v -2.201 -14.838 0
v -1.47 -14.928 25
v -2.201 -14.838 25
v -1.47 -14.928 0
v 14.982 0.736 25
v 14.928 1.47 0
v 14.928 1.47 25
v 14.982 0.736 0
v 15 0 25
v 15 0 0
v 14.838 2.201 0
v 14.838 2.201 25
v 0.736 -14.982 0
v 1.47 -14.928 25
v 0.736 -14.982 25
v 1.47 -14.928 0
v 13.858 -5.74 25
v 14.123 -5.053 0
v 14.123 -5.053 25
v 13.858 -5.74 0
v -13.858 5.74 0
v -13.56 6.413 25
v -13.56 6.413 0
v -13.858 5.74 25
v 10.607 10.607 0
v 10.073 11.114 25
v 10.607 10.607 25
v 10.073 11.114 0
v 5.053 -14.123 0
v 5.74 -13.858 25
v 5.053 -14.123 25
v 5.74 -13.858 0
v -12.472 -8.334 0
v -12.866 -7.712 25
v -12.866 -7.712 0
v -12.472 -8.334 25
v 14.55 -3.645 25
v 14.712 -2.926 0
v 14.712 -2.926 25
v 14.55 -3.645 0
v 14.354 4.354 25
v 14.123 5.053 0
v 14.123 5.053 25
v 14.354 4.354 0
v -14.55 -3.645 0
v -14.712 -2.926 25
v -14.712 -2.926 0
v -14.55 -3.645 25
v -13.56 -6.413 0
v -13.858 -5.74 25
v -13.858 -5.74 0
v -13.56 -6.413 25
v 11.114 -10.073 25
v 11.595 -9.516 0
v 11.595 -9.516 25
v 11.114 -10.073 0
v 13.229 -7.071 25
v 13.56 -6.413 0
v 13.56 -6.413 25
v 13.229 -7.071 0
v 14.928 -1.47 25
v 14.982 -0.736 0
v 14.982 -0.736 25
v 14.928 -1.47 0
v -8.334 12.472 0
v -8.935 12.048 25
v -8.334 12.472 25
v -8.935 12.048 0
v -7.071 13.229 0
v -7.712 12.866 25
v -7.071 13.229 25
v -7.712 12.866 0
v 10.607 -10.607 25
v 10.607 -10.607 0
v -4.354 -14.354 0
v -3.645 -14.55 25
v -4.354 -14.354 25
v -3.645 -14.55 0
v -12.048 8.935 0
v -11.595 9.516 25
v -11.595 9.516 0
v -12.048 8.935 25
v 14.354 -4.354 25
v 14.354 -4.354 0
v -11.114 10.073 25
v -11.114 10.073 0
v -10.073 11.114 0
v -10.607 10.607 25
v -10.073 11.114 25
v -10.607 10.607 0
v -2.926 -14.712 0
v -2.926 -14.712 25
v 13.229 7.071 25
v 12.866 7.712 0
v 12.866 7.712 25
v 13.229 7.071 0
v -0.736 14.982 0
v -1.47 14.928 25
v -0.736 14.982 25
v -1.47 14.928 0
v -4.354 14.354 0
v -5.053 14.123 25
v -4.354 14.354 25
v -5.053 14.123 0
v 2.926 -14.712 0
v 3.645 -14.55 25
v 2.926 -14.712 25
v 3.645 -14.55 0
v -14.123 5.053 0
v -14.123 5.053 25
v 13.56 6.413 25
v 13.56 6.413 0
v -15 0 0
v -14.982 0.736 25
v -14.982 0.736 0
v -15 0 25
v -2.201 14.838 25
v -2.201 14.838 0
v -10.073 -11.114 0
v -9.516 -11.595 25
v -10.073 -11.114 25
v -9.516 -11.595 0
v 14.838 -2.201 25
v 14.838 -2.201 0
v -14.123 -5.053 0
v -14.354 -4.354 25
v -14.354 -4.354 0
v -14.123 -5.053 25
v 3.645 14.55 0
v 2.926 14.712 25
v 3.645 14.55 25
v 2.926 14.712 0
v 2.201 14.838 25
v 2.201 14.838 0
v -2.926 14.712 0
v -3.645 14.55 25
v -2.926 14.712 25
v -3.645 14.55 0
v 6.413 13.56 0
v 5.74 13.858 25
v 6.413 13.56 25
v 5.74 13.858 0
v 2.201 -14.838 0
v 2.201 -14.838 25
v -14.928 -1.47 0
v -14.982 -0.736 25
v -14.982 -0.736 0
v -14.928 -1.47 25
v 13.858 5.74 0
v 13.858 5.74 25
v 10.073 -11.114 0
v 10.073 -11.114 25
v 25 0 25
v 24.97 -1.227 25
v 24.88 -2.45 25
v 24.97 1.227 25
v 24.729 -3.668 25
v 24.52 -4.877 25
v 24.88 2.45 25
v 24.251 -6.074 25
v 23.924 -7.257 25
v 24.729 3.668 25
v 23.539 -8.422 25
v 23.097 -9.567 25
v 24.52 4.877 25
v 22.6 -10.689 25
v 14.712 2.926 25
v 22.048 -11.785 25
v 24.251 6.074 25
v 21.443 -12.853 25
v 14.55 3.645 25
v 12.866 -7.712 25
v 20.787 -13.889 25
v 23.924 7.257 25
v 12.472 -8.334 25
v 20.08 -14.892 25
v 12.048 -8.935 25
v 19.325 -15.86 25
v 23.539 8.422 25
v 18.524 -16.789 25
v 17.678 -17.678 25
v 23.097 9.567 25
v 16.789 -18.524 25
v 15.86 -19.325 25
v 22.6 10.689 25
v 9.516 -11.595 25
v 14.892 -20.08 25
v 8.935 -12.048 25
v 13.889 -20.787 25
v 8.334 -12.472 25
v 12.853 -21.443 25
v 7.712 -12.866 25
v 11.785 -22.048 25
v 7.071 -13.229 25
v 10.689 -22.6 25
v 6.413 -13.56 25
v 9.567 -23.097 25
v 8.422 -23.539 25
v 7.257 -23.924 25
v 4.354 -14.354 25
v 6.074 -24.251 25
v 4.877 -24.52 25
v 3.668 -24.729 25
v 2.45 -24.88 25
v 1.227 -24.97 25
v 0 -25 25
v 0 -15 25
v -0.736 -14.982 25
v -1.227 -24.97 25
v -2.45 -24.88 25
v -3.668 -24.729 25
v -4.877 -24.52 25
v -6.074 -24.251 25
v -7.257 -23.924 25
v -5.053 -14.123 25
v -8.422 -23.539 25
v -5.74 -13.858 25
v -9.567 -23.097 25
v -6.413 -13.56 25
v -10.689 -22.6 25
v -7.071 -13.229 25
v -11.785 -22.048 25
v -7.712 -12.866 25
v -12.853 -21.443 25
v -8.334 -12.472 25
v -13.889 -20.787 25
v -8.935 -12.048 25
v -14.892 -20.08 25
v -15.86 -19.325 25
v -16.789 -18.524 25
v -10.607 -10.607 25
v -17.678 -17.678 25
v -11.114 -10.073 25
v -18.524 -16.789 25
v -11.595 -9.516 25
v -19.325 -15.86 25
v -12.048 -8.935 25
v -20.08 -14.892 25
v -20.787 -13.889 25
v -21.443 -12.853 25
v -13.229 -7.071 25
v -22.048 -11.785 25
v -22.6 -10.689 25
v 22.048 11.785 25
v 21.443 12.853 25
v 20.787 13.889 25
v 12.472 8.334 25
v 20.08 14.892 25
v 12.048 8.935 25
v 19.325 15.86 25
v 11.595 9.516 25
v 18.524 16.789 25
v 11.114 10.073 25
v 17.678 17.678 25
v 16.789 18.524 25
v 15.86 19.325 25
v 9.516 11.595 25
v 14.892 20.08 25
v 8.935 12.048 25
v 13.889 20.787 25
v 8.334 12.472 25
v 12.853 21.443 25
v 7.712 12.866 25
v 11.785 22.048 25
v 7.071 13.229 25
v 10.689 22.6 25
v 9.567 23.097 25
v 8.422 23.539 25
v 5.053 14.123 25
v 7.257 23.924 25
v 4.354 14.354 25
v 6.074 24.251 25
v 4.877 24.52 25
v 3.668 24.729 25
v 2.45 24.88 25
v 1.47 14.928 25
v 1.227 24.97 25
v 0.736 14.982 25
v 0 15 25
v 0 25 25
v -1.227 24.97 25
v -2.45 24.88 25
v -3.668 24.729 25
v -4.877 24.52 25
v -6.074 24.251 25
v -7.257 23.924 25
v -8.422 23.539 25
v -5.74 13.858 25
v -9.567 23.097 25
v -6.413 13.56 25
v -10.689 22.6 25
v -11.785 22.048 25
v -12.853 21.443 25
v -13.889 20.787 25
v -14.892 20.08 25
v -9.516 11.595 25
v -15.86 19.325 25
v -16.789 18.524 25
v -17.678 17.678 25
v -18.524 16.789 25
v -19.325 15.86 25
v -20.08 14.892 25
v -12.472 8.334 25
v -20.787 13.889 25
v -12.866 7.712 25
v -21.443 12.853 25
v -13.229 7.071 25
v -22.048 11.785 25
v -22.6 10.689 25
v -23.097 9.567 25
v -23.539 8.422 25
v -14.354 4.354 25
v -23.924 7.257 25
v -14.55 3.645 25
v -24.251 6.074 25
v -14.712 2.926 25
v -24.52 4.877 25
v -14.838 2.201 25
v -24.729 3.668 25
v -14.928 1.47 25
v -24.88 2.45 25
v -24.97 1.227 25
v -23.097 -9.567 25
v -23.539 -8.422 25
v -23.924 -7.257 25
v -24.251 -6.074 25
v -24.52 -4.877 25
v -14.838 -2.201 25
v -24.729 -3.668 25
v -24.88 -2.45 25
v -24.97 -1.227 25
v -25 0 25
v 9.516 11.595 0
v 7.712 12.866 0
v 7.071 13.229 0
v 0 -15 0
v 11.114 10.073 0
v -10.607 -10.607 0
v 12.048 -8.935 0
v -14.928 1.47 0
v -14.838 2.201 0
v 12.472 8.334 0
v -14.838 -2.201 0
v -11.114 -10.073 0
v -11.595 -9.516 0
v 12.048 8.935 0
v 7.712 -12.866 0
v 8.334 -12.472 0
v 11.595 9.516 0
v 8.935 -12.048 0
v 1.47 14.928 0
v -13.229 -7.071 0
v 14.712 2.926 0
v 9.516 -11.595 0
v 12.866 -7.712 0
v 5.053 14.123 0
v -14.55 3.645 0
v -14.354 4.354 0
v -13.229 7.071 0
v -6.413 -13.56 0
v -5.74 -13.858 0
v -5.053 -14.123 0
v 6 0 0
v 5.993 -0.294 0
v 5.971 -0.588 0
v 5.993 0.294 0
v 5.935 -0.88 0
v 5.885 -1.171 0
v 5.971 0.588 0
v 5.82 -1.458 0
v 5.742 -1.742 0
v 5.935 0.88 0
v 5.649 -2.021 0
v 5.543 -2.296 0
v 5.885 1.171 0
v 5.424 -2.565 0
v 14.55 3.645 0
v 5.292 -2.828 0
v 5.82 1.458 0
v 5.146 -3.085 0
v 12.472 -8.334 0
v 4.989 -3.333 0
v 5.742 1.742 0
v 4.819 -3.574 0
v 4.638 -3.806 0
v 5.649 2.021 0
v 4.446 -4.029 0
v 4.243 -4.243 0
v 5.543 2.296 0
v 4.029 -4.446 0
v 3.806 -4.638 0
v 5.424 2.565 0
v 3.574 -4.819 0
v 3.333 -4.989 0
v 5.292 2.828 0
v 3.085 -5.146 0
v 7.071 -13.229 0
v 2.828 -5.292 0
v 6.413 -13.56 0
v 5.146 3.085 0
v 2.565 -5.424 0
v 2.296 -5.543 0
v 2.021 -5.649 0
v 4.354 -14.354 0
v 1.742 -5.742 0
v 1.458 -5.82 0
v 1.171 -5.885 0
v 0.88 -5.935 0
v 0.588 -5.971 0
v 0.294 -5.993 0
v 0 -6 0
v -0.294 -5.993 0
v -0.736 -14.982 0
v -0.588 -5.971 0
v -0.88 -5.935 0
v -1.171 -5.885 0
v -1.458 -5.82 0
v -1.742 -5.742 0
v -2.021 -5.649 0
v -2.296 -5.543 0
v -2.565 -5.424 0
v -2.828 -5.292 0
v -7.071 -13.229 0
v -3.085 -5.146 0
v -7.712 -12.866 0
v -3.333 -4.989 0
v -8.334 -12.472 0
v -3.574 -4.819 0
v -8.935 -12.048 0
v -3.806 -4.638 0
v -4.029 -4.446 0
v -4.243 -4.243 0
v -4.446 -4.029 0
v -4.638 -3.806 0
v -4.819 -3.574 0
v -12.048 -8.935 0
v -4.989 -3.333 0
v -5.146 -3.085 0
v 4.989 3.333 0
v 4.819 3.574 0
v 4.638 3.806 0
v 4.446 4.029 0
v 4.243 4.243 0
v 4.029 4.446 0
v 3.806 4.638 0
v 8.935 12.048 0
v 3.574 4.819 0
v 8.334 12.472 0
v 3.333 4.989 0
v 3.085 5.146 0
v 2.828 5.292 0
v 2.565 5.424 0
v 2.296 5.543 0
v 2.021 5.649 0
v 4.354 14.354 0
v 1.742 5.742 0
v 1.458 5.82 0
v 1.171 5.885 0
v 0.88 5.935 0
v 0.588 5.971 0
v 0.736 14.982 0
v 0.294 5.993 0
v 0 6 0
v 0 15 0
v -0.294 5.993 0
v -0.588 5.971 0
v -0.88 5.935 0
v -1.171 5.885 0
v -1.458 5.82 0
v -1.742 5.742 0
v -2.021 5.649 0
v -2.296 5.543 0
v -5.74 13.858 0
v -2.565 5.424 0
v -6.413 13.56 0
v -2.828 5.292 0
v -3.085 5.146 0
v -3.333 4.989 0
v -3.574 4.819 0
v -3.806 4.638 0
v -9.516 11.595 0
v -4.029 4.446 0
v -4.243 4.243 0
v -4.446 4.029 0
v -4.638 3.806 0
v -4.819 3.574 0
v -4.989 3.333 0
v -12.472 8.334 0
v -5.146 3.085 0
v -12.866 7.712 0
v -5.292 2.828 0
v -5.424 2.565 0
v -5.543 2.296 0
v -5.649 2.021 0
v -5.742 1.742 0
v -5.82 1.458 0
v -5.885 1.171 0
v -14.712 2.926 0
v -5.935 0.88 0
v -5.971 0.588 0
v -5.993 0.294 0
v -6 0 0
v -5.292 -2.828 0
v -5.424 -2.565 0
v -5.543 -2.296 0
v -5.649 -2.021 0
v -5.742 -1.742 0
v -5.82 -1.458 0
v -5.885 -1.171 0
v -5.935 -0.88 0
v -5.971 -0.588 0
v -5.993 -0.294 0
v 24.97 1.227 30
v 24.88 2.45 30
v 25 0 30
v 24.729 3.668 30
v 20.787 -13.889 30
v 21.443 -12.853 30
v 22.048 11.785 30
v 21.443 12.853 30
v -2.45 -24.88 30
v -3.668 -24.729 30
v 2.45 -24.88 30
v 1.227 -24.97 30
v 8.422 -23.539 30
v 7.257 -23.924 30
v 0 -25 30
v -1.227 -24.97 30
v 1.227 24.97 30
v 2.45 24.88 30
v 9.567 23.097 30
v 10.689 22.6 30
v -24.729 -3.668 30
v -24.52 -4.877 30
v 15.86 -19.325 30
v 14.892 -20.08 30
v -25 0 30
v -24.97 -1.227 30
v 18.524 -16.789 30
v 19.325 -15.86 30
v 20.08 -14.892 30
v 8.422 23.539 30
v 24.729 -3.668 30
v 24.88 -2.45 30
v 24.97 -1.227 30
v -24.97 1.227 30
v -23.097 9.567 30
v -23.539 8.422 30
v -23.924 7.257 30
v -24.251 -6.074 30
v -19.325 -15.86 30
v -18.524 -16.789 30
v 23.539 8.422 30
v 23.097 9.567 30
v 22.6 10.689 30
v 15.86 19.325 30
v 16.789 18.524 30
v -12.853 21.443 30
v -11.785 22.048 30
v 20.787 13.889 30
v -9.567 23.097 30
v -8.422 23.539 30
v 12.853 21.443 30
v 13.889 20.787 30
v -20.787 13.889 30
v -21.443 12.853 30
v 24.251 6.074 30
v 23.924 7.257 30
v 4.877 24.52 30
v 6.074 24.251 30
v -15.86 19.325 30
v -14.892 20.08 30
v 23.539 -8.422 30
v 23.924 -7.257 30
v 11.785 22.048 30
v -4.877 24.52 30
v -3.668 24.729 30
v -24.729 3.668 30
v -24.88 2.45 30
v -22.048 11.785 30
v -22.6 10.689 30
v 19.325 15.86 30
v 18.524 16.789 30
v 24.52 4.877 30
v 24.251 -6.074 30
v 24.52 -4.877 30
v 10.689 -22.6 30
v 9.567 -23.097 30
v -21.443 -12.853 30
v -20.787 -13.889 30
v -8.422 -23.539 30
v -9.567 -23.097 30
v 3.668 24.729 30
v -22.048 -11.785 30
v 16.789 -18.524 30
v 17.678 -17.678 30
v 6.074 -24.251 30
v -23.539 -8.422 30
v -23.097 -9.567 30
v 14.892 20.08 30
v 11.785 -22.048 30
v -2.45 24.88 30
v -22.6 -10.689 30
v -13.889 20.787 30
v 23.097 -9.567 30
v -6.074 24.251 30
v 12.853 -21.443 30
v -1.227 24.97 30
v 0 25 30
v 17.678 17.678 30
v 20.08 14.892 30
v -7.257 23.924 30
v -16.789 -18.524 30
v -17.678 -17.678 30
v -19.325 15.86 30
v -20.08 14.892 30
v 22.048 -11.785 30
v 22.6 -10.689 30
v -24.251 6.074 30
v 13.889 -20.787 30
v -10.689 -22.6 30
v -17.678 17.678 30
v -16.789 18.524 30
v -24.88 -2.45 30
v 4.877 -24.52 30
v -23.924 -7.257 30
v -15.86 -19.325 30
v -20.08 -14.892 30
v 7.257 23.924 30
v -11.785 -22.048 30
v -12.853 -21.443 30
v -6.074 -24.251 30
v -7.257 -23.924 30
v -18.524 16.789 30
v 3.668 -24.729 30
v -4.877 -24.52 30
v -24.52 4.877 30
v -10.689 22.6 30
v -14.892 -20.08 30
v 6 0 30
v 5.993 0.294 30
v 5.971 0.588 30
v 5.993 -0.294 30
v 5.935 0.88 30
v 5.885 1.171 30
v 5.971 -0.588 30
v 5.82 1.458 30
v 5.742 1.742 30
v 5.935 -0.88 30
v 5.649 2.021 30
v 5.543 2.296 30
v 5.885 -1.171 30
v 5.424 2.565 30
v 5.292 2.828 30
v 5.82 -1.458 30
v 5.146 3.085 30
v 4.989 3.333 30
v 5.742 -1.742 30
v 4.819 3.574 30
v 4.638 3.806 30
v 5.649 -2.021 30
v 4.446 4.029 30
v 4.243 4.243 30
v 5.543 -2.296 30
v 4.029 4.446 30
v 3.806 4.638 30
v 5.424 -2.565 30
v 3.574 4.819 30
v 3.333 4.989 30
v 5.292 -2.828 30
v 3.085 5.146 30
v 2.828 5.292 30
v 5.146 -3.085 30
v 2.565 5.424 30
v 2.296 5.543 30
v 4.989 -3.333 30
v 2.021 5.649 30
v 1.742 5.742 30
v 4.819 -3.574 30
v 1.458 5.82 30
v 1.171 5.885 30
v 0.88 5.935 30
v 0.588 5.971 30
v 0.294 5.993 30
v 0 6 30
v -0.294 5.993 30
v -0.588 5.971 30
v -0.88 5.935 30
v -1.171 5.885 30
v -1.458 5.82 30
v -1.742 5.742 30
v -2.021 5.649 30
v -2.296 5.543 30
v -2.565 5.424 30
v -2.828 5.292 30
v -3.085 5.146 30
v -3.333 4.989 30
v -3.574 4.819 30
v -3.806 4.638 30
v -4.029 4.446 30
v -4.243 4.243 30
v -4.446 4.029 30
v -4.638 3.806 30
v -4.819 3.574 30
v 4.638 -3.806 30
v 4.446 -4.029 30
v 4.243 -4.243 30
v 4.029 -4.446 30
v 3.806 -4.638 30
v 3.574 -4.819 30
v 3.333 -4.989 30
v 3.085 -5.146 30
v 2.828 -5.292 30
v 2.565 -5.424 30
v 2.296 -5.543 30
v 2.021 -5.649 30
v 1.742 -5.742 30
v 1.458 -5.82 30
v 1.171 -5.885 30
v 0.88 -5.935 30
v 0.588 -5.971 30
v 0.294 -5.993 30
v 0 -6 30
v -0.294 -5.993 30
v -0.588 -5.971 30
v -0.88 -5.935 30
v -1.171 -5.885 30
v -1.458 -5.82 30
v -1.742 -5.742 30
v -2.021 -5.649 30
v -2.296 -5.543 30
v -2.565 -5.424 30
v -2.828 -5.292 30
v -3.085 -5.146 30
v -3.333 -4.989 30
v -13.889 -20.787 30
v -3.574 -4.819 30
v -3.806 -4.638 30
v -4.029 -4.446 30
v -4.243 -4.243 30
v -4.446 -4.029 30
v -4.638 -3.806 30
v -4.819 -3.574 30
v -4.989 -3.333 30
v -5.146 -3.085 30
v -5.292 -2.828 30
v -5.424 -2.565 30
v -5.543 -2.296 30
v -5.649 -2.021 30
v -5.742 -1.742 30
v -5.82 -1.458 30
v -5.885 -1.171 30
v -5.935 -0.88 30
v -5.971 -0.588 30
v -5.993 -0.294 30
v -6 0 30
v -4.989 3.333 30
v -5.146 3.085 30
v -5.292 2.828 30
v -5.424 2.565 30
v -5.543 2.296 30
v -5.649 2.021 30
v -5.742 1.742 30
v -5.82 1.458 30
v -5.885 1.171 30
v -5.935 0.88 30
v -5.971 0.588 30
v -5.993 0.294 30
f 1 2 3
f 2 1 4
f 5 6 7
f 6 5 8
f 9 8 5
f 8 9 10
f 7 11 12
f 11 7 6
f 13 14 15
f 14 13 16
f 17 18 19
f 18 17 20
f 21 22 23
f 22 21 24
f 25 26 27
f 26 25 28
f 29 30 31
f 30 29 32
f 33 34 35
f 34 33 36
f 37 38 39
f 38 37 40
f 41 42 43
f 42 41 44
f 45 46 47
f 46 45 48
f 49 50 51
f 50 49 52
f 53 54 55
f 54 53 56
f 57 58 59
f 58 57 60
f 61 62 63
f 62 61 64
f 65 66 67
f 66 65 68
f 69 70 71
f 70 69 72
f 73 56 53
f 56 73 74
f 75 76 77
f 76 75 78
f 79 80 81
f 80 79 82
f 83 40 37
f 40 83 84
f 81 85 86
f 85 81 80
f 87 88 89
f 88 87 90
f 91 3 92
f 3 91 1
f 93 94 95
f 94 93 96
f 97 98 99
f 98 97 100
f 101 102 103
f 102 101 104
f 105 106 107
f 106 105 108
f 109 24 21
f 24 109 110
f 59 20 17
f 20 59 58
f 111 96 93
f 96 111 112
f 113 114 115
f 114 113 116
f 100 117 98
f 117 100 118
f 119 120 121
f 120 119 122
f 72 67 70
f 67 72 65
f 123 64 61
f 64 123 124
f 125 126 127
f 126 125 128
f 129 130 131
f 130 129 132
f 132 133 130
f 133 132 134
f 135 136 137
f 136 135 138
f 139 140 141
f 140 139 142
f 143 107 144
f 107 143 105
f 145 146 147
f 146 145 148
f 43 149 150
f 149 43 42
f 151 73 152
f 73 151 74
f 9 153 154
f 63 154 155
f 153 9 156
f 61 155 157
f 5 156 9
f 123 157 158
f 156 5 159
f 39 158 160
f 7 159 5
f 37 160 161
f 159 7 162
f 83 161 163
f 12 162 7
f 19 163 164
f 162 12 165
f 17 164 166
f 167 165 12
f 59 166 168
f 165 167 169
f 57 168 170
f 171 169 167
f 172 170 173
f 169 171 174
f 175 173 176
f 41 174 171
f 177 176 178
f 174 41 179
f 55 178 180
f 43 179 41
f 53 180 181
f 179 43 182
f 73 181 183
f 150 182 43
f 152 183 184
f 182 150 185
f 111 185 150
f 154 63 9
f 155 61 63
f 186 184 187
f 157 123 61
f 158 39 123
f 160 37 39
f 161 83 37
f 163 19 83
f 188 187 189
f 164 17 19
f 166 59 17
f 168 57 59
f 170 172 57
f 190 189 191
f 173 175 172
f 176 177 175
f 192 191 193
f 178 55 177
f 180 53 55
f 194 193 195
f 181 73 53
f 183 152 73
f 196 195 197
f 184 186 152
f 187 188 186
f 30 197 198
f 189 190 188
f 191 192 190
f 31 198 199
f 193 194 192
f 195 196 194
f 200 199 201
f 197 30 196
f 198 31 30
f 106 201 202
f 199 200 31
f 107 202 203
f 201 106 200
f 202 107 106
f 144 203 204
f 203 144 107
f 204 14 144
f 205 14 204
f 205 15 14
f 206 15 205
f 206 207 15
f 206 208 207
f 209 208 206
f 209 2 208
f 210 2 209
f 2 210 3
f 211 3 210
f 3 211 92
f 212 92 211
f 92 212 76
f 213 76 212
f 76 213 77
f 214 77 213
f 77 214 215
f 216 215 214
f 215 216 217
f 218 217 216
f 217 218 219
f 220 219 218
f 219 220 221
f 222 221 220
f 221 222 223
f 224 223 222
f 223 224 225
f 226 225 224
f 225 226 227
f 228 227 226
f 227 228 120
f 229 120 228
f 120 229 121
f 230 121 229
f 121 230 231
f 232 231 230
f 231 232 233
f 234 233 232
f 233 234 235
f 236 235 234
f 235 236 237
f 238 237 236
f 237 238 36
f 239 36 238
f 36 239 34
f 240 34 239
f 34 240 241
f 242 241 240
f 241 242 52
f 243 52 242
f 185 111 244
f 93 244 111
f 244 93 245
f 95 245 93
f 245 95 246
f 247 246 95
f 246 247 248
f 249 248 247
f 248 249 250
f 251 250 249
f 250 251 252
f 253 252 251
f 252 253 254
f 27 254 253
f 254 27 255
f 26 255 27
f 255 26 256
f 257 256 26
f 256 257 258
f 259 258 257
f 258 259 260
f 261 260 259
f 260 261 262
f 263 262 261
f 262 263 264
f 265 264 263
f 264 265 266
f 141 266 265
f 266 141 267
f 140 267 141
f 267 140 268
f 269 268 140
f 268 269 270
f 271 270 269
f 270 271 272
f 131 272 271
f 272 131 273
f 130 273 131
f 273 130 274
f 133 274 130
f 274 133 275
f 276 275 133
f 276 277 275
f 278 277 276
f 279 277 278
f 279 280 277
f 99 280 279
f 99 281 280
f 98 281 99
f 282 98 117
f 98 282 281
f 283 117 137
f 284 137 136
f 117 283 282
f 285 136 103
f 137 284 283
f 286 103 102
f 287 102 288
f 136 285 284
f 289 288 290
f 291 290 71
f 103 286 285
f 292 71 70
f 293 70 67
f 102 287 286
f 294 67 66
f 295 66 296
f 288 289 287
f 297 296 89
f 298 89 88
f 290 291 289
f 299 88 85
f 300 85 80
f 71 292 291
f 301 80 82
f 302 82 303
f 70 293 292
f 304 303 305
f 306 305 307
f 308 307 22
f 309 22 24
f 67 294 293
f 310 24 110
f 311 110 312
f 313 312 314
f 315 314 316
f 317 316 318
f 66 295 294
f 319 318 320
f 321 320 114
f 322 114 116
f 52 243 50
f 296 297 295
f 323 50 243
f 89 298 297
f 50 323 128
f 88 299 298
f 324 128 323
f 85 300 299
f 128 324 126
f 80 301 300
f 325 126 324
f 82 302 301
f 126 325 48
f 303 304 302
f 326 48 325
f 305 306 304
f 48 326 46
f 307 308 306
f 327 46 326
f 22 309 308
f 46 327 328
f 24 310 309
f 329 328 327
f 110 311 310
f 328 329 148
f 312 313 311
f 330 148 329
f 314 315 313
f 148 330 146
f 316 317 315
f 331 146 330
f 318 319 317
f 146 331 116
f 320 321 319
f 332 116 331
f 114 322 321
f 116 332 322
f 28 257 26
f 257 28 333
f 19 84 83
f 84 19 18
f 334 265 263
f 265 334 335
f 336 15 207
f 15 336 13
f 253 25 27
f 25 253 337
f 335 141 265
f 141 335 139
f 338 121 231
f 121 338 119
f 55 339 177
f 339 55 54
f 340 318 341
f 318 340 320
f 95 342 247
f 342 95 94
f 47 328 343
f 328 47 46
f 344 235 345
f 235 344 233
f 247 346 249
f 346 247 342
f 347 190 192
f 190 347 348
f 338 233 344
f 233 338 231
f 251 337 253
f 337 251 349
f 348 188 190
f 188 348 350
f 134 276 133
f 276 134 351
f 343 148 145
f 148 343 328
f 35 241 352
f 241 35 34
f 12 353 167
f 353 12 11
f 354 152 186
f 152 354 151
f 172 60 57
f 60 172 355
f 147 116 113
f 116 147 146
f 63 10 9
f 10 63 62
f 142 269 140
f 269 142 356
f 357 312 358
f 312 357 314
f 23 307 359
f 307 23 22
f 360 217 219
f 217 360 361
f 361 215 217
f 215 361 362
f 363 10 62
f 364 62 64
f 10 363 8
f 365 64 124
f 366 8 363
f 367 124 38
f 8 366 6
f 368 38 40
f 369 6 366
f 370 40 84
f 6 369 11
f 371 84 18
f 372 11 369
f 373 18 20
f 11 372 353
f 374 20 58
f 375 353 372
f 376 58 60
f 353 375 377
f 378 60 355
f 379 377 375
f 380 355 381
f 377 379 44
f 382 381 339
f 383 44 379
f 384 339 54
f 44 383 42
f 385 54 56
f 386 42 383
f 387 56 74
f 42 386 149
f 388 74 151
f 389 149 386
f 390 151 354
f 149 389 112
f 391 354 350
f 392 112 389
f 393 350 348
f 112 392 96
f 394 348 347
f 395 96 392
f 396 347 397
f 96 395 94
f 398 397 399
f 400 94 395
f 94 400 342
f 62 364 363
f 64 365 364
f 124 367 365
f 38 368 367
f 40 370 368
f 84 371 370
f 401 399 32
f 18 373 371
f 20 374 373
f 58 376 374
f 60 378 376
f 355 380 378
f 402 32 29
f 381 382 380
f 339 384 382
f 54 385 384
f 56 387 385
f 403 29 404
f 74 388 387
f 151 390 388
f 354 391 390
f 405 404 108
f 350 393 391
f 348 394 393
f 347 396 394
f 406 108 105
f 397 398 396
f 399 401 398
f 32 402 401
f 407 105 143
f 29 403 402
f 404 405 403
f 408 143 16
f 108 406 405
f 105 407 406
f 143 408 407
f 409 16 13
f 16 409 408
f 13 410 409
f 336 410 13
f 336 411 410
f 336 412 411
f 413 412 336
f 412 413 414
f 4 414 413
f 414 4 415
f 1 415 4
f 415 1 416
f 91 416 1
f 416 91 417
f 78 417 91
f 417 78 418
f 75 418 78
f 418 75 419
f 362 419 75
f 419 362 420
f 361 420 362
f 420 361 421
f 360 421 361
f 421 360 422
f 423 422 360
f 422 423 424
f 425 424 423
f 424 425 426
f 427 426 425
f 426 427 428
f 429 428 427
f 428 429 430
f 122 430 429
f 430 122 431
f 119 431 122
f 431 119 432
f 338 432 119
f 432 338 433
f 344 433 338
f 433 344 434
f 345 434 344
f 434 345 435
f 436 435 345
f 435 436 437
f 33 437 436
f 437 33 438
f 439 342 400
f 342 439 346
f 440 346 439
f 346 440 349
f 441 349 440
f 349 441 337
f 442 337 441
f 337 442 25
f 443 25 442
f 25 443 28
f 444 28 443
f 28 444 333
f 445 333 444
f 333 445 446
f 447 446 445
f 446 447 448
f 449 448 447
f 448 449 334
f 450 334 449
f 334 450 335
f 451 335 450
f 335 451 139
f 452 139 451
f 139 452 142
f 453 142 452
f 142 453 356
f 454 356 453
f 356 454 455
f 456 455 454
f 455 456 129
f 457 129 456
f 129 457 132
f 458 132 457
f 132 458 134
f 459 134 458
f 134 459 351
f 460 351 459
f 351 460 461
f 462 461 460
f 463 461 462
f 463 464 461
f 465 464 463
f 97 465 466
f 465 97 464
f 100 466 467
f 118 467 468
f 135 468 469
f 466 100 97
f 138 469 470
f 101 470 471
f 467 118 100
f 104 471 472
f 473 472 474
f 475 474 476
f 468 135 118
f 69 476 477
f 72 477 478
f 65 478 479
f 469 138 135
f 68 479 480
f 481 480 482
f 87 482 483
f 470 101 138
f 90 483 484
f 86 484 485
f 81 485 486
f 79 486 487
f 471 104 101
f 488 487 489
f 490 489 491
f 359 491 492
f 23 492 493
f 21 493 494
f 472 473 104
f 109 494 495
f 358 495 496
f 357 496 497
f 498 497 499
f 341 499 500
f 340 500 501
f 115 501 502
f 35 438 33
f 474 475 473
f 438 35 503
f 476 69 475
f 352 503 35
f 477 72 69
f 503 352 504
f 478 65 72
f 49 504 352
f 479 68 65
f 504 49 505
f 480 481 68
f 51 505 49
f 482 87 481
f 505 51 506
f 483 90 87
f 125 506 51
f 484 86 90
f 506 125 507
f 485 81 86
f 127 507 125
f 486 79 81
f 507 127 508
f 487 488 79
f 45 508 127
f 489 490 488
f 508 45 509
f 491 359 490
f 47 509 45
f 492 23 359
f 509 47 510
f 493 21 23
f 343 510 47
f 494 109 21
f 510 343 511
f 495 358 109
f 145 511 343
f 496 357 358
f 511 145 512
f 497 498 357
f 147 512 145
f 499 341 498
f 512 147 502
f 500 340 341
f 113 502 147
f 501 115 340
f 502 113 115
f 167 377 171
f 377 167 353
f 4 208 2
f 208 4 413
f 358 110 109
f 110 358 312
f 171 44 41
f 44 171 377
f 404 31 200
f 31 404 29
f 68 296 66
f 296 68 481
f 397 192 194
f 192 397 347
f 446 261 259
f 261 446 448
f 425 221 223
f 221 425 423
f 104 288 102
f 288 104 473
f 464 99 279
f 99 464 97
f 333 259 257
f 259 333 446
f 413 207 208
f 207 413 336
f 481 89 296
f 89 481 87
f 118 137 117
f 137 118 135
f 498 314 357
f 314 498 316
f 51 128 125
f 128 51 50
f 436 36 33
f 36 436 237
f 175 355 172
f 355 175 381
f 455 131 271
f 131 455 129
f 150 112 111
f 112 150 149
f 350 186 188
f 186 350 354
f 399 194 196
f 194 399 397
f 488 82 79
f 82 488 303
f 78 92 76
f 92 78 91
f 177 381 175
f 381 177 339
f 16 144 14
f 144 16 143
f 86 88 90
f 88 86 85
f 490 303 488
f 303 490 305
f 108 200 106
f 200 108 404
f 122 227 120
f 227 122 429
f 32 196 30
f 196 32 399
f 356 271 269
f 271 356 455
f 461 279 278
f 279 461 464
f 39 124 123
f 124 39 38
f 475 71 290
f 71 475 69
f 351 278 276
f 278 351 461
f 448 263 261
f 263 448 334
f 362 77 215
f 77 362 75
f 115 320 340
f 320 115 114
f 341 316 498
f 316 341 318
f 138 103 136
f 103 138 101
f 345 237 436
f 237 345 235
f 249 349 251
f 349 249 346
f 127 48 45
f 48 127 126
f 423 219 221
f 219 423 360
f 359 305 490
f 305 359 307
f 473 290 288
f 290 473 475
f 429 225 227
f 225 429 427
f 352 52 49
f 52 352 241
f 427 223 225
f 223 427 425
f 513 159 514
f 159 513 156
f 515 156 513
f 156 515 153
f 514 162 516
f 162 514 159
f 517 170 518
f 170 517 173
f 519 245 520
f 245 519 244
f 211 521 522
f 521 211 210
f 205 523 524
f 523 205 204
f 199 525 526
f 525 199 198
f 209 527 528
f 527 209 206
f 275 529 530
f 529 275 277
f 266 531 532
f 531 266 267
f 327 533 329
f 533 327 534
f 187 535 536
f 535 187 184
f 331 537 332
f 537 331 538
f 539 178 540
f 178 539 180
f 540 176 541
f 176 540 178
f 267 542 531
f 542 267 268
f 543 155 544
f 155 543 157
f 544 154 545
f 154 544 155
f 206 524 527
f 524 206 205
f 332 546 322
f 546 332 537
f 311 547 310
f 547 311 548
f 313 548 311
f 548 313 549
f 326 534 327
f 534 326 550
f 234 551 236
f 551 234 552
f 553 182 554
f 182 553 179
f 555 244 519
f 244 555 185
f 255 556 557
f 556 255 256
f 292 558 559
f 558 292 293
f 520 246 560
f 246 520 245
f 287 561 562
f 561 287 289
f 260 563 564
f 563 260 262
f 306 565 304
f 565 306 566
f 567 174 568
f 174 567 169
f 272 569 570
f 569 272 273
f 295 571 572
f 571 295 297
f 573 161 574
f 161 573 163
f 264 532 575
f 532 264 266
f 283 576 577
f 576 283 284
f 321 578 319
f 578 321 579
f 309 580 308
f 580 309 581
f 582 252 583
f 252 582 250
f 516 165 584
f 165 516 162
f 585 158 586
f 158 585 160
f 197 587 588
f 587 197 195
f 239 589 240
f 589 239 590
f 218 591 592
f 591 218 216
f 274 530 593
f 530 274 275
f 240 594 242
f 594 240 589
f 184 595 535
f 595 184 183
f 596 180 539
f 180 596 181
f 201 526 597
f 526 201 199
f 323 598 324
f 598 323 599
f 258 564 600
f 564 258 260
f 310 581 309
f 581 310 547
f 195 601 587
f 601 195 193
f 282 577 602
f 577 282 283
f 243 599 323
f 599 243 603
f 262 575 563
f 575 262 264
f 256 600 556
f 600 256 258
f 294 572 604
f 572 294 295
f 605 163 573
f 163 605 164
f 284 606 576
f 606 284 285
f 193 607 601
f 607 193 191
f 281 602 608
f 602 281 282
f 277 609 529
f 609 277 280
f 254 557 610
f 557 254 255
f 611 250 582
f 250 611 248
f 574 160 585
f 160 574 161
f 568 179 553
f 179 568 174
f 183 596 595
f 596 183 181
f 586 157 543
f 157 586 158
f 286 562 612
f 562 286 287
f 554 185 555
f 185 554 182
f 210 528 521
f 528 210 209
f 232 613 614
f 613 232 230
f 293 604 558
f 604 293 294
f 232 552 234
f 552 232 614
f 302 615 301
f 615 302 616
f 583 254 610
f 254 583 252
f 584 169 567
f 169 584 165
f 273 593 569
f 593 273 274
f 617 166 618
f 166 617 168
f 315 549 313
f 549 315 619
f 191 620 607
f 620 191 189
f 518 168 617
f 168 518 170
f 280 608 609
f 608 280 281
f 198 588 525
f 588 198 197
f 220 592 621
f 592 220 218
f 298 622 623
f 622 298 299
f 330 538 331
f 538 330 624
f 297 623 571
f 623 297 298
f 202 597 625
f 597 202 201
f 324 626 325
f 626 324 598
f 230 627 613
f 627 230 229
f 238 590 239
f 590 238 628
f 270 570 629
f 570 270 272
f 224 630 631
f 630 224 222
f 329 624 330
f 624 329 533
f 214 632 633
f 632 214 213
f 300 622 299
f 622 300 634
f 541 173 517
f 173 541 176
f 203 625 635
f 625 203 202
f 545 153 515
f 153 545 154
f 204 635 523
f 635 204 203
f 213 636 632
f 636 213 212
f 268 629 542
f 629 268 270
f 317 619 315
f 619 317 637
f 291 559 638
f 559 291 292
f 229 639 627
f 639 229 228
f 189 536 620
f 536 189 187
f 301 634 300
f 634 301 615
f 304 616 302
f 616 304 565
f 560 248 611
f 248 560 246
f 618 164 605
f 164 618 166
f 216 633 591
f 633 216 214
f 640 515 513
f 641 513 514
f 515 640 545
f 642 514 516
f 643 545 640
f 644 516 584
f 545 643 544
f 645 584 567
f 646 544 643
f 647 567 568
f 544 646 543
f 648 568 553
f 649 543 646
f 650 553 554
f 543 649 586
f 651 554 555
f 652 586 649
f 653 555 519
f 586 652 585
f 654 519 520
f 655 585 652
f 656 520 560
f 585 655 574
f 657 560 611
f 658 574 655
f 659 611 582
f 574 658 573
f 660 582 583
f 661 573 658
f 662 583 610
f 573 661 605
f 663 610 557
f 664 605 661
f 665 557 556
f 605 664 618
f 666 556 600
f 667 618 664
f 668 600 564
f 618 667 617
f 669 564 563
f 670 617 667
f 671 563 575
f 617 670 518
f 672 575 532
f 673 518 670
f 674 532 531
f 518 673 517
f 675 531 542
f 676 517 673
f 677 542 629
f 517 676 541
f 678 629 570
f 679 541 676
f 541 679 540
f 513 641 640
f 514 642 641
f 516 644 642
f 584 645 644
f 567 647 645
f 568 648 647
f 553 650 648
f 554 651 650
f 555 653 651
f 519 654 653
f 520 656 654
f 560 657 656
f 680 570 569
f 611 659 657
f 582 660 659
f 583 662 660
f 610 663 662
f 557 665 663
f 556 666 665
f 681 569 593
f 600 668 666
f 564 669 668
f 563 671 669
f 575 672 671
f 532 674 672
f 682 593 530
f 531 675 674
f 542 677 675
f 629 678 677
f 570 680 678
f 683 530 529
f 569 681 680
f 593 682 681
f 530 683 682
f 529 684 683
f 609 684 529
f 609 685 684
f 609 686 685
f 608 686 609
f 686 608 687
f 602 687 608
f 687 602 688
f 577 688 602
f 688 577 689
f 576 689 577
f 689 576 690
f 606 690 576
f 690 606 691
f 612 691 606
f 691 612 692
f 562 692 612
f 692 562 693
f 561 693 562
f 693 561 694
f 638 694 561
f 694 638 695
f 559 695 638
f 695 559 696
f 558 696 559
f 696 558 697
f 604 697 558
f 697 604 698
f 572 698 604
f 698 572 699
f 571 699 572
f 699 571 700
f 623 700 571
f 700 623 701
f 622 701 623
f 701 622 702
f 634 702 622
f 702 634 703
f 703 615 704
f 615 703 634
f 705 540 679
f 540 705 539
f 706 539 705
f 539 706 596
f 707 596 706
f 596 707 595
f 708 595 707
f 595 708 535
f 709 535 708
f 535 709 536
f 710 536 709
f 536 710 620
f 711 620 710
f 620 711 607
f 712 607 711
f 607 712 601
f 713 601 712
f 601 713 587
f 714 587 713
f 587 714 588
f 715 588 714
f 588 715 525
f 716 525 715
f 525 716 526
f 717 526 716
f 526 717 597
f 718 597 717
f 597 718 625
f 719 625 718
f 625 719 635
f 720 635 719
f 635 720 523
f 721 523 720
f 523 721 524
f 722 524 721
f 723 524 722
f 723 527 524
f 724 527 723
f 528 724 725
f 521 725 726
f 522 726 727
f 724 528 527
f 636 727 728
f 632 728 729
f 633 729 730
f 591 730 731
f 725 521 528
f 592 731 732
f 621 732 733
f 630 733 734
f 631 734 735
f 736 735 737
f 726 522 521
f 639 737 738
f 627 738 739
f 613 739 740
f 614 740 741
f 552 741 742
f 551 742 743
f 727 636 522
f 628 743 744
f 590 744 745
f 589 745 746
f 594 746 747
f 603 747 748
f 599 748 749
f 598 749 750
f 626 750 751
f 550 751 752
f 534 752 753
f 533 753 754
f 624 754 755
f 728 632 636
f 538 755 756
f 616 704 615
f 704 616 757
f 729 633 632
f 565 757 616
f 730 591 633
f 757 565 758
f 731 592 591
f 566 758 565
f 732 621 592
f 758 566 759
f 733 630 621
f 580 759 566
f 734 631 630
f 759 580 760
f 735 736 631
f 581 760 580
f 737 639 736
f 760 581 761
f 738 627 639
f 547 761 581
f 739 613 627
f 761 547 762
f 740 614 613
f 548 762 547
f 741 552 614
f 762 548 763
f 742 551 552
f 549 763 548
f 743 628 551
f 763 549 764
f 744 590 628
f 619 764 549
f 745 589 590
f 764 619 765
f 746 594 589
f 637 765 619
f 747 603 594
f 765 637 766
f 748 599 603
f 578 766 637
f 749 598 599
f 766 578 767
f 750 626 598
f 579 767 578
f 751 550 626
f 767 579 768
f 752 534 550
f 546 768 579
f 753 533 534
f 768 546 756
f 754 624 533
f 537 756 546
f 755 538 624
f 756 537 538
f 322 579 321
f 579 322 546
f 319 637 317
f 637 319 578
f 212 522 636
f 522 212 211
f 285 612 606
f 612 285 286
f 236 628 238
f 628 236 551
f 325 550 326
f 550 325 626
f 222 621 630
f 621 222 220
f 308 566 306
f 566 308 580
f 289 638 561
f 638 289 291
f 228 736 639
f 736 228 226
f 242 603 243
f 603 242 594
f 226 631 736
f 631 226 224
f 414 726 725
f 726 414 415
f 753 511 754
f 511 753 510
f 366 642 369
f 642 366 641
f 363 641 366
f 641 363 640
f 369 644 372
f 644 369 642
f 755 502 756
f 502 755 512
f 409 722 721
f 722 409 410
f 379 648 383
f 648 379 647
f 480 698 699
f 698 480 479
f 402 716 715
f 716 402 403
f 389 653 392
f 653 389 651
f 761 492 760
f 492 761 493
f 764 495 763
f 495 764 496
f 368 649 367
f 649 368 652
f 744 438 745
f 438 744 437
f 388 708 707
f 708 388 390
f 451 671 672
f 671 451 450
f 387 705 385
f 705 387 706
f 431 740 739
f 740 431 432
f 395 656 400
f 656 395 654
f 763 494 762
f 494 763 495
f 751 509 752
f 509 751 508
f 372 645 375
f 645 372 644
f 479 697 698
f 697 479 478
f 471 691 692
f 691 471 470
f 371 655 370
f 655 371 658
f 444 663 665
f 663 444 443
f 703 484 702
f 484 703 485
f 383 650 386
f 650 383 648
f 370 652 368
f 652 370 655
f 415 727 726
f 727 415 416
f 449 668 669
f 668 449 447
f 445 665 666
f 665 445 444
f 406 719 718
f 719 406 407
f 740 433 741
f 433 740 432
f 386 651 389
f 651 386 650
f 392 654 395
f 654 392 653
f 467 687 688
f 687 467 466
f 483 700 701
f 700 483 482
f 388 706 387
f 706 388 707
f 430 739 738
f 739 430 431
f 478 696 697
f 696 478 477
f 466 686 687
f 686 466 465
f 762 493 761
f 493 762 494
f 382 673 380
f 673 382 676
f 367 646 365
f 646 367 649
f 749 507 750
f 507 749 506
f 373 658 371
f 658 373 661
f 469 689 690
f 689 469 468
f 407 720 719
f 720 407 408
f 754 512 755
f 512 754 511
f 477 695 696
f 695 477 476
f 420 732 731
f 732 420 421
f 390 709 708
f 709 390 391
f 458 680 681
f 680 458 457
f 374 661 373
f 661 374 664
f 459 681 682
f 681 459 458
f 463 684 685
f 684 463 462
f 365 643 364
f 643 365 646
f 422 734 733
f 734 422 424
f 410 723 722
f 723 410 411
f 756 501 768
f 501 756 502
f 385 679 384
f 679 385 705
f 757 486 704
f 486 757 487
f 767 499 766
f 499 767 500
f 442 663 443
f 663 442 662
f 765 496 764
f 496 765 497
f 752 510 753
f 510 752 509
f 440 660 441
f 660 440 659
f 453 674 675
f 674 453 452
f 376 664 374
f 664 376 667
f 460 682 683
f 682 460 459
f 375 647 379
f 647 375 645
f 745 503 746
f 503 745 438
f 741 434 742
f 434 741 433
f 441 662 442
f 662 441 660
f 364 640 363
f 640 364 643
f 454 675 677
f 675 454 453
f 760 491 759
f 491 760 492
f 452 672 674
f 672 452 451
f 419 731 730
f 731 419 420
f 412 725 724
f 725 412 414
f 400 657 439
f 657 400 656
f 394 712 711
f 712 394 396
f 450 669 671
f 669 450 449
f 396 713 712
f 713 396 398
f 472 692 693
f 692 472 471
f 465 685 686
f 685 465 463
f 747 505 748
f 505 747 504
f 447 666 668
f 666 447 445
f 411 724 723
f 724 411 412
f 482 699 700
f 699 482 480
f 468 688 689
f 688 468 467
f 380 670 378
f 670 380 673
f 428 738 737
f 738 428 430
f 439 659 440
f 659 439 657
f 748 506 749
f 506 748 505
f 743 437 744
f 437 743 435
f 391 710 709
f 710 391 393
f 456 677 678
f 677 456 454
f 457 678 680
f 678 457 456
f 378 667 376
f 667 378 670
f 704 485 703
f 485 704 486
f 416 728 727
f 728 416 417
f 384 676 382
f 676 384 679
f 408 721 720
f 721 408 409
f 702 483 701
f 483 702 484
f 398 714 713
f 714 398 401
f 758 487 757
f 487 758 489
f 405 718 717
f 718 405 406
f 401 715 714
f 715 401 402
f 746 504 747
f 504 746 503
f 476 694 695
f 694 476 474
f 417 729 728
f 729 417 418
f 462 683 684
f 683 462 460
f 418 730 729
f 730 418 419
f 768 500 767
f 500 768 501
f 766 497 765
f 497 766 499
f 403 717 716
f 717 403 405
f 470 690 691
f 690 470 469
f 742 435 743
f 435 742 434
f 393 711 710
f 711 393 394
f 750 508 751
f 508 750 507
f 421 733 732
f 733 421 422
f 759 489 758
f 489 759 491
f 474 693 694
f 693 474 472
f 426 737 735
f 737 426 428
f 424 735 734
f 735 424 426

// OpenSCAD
// Flanged bushing, all dimensions mm.
// Spec: body OD 30 x 25 long, flange OD 50 x 5 thick at z=25,
//       bore OD 12 through, axis at (0,0) along z.
$fn = 128;

bore_d   = 12;
body_d   = 30;
flange_d = 50;
body_h   = 25;
flange_h = 5;
total_h  = body_h + flange_h;

difference() {
    union() {
        cylinder(h = body_h, d = body_d);
        translate([0, 0, body_h]) cylinder(h = flange_h, d = flange_d);
    }
    // bore through everything
    translate([0, 0, -1]) cylinder(h = total_h + 2, d = bore_d);
}
